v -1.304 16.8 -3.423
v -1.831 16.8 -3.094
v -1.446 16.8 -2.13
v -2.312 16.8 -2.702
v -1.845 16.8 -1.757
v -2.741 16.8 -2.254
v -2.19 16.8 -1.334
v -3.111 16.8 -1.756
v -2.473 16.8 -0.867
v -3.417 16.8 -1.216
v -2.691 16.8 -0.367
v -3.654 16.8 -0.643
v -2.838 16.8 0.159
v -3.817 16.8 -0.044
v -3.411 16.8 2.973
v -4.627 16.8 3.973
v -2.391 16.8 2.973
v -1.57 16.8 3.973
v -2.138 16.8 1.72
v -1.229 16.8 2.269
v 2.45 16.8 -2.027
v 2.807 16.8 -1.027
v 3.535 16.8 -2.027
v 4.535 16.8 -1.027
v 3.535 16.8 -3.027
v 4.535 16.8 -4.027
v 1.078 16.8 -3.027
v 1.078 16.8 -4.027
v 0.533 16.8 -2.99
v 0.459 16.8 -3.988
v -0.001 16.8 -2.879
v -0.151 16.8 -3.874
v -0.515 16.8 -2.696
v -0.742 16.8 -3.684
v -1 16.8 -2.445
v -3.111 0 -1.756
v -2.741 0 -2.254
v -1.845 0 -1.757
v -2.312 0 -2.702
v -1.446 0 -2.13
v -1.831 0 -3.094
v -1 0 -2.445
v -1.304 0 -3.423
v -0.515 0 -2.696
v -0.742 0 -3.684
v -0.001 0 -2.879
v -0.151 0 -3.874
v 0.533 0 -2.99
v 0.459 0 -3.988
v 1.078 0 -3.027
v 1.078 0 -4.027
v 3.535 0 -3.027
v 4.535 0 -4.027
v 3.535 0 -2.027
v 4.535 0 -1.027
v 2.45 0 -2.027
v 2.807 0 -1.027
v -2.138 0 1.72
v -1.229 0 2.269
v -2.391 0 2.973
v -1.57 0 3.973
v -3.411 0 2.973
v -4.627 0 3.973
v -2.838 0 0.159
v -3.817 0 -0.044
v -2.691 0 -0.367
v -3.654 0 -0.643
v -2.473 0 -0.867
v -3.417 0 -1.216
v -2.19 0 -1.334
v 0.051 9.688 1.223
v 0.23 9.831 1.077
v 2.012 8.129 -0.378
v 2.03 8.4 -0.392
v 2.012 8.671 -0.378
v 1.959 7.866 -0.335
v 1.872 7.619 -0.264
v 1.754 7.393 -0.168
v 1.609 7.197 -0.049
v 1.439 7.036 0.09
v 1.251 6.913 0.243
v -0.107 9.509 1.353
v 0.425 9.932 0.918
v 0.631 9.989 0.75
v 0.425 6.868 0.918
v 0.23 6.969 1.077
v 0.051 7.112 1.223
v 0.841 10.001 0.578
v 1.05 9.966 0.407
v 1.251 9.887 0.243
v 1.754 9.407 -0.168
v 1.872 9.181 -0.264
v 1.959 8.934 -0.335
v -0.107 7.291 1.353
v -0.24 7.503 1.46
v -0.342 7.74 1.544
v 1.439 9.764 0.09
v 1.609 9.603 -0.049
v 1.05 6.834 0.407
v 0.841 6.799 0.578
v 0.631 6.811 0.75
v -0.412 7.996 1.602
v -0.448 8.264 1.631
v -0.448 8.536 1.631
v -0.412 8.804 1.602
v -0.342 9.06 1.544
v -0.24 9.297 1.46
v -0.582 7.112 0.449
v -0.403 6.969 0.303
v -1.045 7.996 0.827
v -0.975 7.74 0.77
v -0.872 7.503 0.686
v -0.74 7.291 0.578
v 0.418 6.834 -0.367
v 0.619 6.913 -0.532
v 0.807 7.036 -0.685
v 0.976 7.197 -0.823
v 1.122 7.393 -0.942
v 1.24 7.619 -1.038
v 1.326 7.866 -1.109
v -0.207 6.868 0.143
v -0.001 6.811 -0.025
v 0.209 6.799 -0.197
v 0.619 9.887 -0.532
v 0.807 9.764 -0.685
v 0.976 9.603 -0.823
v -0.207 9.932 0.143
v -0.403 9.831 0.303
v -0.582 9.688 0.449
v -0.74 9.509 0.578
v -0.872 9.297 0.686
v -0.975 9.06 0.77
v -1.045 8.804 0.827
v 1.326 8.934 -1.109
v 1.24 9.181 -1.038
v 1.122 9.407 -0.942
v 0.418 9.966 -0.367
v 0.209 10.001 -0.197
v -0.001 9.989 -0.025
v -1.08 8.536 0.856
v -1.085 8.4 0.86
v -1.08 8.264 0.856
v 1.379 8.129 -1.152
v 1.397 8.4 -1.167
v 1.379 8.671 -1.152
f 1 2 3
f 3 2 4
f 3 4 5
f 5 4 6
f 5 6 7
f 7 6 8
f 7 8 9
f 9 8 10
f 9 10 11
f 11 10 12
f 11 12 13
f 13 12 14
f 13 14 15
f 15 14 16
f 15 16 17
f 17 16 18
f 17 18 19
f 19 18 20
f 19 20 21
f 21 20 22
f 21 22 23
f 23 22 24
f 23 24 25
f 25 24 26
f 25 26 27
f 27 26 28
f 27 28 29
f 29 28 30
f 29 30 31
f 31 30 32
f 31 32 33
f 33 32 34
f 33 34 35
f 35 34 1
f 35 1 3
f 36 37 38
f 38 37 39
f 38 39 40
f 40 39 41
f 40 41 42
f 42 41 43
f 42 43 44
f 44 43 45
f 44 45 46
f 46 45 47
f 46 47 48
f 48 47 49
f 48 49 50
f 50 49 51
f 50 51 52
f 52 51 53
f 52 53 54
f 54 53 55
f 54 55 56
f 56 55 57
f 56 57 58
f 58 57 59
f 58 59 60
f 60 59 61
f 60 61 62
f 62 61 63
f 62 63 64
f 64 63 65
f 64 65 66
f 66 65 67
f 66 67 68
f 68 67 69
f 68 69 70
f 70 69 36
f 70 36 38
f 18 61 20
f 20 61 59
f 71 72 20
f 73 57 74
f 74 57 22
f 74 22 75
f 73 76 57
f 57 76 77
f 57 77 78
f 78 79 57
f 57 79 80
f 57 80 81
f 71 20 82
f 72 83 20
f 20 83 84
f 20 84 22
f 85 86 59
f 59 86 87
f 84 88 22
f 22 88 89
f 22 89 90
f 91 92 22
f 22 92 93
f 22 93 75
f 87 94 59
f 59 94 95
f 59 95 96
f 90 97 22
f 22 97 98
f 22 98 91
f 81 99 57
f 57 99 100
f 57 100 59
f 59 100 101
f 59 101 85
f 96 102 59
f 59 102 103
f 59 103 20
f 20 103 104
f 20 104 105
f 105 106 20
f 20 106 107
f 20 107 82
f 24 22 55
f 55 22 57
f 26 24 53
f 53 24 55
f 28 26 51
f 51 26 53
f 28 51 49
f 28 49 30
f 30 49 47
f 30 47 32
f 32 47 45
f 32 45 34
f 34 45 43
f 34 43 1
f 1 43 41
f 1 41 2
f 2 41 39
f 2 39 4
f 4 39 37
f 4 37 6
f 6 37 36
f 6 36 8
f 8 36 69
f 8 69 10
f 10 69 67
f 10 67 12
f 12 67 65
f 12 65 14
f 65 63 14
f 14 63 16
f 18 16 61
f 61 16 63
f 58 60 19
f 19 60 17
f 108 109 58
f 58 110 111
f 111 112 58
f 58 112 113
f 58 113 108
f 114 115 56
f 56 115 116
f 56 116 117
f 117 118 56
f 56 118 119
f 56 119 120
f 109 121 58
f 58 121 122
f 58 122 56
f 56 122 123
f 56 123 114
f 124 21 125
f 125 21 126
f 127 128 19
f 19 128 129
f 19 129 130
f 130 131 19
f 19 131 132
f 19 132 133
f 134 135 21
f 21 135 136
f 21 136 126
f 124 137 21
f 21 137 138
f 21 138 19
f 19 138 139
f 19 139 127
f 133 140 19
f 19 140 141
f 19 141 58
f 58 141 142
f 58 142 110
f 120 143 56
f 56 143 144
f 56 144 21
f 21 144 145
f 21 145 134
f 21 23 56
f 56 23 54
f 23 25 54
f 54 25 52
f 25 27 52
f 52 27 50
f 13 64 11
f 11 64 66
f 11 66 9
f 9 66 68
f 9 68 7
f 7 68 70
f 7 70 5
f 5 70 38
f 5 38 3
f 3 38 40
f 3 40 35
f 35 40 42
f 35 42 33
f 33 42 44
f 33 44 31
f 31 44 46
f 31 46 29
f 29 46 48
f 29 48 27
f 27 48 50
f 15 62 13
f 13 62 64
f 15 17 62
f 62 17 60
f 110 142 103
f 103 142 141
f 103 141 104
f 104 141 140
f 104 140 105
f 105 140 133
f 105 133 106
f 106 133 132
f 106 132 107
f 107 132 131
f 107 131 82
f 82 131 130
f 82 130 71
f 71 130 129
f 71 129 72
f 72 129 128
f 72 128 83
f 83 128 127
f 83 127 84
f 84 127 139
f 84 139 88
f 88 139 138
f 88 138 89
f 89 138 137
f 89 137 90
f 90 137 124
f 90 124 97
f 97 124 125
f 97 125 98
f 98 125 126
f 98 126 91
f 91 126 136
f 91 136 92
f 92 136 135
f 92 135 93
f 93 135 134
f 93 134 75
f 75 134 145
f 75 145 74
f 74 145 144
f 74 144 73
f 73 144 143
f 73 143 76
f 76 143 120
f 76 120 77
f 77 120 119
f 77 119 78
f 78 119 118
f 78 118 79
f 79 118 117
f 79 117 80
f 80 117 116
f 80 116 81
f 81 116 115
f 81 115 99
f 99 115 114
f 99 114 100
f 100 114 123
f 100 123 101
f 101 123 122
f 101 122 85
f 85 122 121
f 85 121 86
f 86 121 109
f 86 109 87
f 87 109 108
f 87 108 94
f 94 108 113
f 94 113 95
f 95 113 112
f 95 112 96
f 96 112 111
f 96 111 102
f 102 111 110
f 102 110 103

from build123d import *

# Parameters (mm, degrees)
BOSS_EXTRUDE1_DEPTH = 16.8
SKETCH3_R           = 1.602221917
CUT_EXTRUDE2_DEPTH  = 1


with BuildPart() as part:
    # Sketch1 → Boss-Extrude1 (new body)
    with BuildSketch(Plane(origin=(0, 0, 0), x_dir=(1, 0, 0), z_dir=(0, 1, 0))):
        with BuildLine():
            Line((-4.627081214, -3.973073539), (-1.569860328, -3.973073539))
            ThreePointArc((-1.569860328, -3.973073539), (-1.400678587, -3.120671939), (-1.229309949, -2.268707303))
            Line((-1.229309949, -2.268707303), (2.8066913, 1.026926461))
            Line((2.8066913, 1.026926461), (4.535241357, 1.026926461))
            Line((4.535241357, 1.026926461), (4.535241357, 4.026926461))
            Line((4.535241357, 4.026926461), (1.078141243, 4.026926461))
            ThreePointArc((1.078141243, 4.026926461), (-2.077248816, 2.905523317), (-3.817253142, 0.044331891))
            ThreePointArc((-3.817253142, 0.044331891), (-4.228191177, -1.963156507), (-4.627081214, -3.973073539))
        make_face()
        with BuildLine():
            Line((-3.410627534, -2.973073539), (-2.390949988, -2.973073539))
            ThreePointArc((-2.390949988, -2.973073539), (-2.265209784, -2.346372679), (-2.138290376, -1.719909567))
            Line((-2.138290376, -1.719909567), (2.450276186, 2.026926461))
            Line((2.450276186, 2.026926461), (3.535241357, 2.026926461))
            Line((3.535241357, 2.026926461), (3.535241357, 3.026926461))
            Line((3.535241357, 3.026926461), (1.078141243, 3.026926461))
            ThreePointArc((1.078141243, 3.026926461), (-1.446170804, 2.129803946), (-2.838174265, -0.159149195))
            ThreePointArc((-2.838174265, -0.159149195), (-3.127366046, -1.56550815), (-3.410627534, -2.973073539))
        make_face(mode=Mode.SUBTRACT)
    extrude(amount=BOSS_EXTRUDE1_DEPTH)

    # Sketch3 → Cut-Extrude2 (cut)
    with BuildSketch(Plane(origin=(0.619682886, 0, 0.758895279), x_dir=(0.774572925, 0, -0.632484612), z_dir=(0.632484612, 0, 0.774572925))):
        with Locations((0.218194806, 8.4)):
            Circle(SKETCH3_R)
    extrude(amount=-CUT_EXTRUDE2_DEPTH, mode=Mode.SUBTRACT)


solid = part.part
